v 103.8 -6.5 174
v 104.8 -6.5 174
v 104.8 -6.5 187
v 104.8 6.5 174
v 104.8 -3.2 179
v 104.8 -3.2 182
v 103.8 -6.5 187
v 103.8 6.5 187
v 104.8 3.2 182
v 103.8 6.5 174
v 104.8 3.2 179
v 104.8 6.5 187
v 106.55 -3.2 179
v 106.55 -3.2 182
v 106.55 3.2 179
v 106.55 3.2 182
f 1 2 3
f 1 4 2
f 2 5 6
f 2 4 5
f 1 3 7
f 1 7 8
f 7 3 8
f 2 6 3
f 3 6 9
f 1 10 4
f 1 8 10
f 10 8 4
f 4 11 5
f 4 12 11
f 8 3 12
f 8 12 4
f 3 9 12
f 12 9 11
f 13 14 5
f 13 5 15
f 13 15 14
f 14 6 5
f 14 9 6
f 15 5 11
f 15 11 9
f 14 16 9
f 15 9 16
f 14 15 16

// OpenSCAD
// file: ../md_vitamins.scad
// Envelopes of the bought electronics, placed where the parts expect them (for fit checks and renders)
SG90_STL = "/Users/hemangvora/OpenDuck/upstream/Open_Duck_Mini/mini_bdx/robots/open_duck_mini_v2/sg90.stl";
module v_sg90_jaw() multmatrix([[1,0,0,JAW_P[0]-5.7],[0,0,-1,-SG_BASE],[0,1,0,JAW_P[1]],[0,0,0,1]]) import(SG90_STL);
module v_radxa() {                         // Radxa Zero 3W 65 x 30 board on 6 mm standoffs + 16 mm component/wire budget
    translate([RADXA_X0, RADXA_Y0, CH_Z1 + 6]) { cube([65, 30, 1.6]); translate([2, 2, 1.6]) cube([61, 26, 16]); translate([0, 0, -2]) cube([65, 30, 2]); }
}
module v_buck() translate([-30, -13.5, CH_Z1 + 1]) cube([46, 27, 12]);            // XY-3606 (HW-688), generous envelope
module v_camera() translate([103.8, -12.5, EYE_C[1] - 14.5]) { cube([1.0, 25, 24]); translate([1.0, 12.5 - 4.25, 14.5 - 4.25]) cube([5.2, 8.5, 8.5]); }  // Pi cam v2 / IMX219 board + lens module
module v_tof() translate([103.8, -6.5, TOF_C[1] - 6.5]) { cube([1.0, 13, 13]); translate([1.0, 6.5 - 3.2, 6.5 - 1.5]) cube([1.75, 6.4, 3.0]); }
module head_vitamins() { v_sg90_jaw(); v_radxa(); v_buck(); v_camera(); v_tof(); }

// ---------------- body electronics ----------------
module v_pack()    translate([DK_X0, -PACK[1] / 2, DK_Z1]) cube(PACK);                       // 3S1P Samsung 30Q pack
module v_bms()     translate([DK_X0 + 5, -31, DK_Z1 + PACK[2] + 0.5]) cube([48, 62, 7]);      // 3S 40 A BMS, 5-FET board
module v_adapter() translate([-44, -21, SHELF[4] + 4]) { cube([33, 42, 1.6]); translate([1, 1, 1.6]) cube([31, 40, 10]); }   // Bus Servo Adapter (A)
module v_switch()  {   // AUTO MT 12 V 20 A toggle, 12 mm hole; body 28 x 16 behind the panel, cover outside
    translate([DK_X0, SWITCH_C[0] - 14, SWITCH_C[1] - 8]) cube([45, 28, 16]);
    translate([BX_R - 25, SWITCH_C[0] - 14, SWITCH_C[1] - 8]) cube([25, 28, 16]);
}
module v_xt30()    translate([DK_X0, XT30_C[0] - 5.1, XT30_C[1] - 2.6]) cube([16, 10.2, 5.2]);
module v_balance() translate([DK_X0, BAL_C[0] - 6.2, BAL_C[1] - 2.9]) cube([8, 12.4, 5.8]);
module v_caps()    for (y = [26, 33]) translate([-40, y, SHELF[4] + 5.3]) rotate([0, 90, 0]) cylinder(d = 10.2, h = 21);  // 2 x 1000 uF 25 V lying on the shelf
module body_vitamins() { v_pack(); v_bms(); v_adapter(); v_switch(); v_xt30(); v_balance(); v_caps(); }
// file: ../md_params.scad
// =====================================================================
//  Microduck-look skin for the Open Duck Mini v2 skeleton
//  Shared parameters and helpers.
//  Frame: Open Duck print/robot frame, mm. +x forward, +y left, +z up.
//  Every part is modelled where it sits on the robot (zero pose).
// =====================================================================

$fn = 72;
EPS = 0.01;

// ---------- fasteners ----------
INSERT_D   = 4.0;   // hole for M3 x 5 brass heat-set insert (Amazon B0DZ8B7FW1)
INSERT_L   = 6.0;   // hole depth for that insert
M3_CLR     = 3.4;   // M3 clearance
M3_HEAD    = 6.5;   // M3 socket-head counterbore
M3_NUT     = 6.4;   // M3 nut across corners (+clearance)
M2_TAP     = 1.8;   // M2 self-tapping pilot (SG90 tab screws, servo adapter)
M25_TAP    = 2.2;   // M2.5 self-tapping pilot (Radxa)
M2_CLR     = 2.4;

// ---------- colours (for previews only) ----------
C_WHITE = [0.95, 0.94, 0.90];
C_BLACK = [0.13, 0.13, 0.14];

// ---------- helpers ----------
function lerp(a, b, t) = a + (b - a) * t;

// Section with vertical sides from zb to zc and a superellipse cap from zc to zt.
// Points are (y, z). n = 2 gives an ellipse, larger n gives a squarer top.
function se_pts(w, zb, zc, zt, n, N = 56) =
    concat(
        [[ w, zb]],
        [for (i = [0:N]) let(t = i * 180 / N, c = cos(t), s = sin(t))
            [w * sign(c) * pow(abs(c), 2 / n), zc + (zt - zc) * pow(abs(s), 2 / n)]],
        [[-w, zb]]
    );

// st = [x, half_width, z_bottom, z_curve_start, z_top, exponent]
module station(st, inset = 0, ext = 0) {
    translate([st[0], 0, 0]) rotate([90, 0, 90])
        linear_extrude(height = EPS, center = true)
            offset(delta = -inset)
                polygon(se_pts(st[1], st[2] - ext, st[3], st[4], st[5]));
}

// piecewise loft through convex stations (hull of neighbours)
module loft(sts, inset = 0, ext = 0) {
    for (i = [0:len(sts) - 2])
        hull() { station(sts[i], inset, ext); station(sts[i + 1], inset, ext); }
}

// station parameters interpolated at any x inside the list
function st_at(sts, x) =
    let(i = max([for (k = [0:len(sts) - 2]) if (sts[k][0] <= x) k]),
        a = sts[i], b = sts[i + 1], t = (x - a[0]) / (b[0] - a[0]))
    [x, lerp(a[1], b[1], t), lerp(a[2], b[2], t), lerp(a[3], b[3], t),
        lerp(a[4], b[4], t), lerp(a[5], b[5], t)];

// heat-set insert pocket: opening at origin, going along -z by default
module insert_hole(depth = INSERT_L, d = INSERT_D) {
    translate([0, 0, -depth]) cylinder(d = d, h = depth + EPS);
    translate([0, 0, -0.6]) cylinder(d1 = d, d2 = d + 0.8, h = 0.6 + EPS);   // lead-in chamfer
}

// M3 clearance with counterbore, axis +z, counterbore at the top
module m3_cb(len_total, cb_depth) {
    translate([0, 0, -EPS]) cylinder(d = M3_CLR, h = len_total + 2 * EPS);
    translate([0, 0, len_total - cb_depth]) cylinder(d = M3_HEAD, h = cb_depth + 1);
}

module rrect(x0, x1, y0, y1, r) {
    translate([x0 + r, y0 + r]) offset(r = r) square([x1 - x0 - 2 * r, y1 - y0 - 2 * r]);
}
// main file
include <../md_params.scad>
include <../md_head.scad>
include <../md_vitamins.scad>
v_tof();
